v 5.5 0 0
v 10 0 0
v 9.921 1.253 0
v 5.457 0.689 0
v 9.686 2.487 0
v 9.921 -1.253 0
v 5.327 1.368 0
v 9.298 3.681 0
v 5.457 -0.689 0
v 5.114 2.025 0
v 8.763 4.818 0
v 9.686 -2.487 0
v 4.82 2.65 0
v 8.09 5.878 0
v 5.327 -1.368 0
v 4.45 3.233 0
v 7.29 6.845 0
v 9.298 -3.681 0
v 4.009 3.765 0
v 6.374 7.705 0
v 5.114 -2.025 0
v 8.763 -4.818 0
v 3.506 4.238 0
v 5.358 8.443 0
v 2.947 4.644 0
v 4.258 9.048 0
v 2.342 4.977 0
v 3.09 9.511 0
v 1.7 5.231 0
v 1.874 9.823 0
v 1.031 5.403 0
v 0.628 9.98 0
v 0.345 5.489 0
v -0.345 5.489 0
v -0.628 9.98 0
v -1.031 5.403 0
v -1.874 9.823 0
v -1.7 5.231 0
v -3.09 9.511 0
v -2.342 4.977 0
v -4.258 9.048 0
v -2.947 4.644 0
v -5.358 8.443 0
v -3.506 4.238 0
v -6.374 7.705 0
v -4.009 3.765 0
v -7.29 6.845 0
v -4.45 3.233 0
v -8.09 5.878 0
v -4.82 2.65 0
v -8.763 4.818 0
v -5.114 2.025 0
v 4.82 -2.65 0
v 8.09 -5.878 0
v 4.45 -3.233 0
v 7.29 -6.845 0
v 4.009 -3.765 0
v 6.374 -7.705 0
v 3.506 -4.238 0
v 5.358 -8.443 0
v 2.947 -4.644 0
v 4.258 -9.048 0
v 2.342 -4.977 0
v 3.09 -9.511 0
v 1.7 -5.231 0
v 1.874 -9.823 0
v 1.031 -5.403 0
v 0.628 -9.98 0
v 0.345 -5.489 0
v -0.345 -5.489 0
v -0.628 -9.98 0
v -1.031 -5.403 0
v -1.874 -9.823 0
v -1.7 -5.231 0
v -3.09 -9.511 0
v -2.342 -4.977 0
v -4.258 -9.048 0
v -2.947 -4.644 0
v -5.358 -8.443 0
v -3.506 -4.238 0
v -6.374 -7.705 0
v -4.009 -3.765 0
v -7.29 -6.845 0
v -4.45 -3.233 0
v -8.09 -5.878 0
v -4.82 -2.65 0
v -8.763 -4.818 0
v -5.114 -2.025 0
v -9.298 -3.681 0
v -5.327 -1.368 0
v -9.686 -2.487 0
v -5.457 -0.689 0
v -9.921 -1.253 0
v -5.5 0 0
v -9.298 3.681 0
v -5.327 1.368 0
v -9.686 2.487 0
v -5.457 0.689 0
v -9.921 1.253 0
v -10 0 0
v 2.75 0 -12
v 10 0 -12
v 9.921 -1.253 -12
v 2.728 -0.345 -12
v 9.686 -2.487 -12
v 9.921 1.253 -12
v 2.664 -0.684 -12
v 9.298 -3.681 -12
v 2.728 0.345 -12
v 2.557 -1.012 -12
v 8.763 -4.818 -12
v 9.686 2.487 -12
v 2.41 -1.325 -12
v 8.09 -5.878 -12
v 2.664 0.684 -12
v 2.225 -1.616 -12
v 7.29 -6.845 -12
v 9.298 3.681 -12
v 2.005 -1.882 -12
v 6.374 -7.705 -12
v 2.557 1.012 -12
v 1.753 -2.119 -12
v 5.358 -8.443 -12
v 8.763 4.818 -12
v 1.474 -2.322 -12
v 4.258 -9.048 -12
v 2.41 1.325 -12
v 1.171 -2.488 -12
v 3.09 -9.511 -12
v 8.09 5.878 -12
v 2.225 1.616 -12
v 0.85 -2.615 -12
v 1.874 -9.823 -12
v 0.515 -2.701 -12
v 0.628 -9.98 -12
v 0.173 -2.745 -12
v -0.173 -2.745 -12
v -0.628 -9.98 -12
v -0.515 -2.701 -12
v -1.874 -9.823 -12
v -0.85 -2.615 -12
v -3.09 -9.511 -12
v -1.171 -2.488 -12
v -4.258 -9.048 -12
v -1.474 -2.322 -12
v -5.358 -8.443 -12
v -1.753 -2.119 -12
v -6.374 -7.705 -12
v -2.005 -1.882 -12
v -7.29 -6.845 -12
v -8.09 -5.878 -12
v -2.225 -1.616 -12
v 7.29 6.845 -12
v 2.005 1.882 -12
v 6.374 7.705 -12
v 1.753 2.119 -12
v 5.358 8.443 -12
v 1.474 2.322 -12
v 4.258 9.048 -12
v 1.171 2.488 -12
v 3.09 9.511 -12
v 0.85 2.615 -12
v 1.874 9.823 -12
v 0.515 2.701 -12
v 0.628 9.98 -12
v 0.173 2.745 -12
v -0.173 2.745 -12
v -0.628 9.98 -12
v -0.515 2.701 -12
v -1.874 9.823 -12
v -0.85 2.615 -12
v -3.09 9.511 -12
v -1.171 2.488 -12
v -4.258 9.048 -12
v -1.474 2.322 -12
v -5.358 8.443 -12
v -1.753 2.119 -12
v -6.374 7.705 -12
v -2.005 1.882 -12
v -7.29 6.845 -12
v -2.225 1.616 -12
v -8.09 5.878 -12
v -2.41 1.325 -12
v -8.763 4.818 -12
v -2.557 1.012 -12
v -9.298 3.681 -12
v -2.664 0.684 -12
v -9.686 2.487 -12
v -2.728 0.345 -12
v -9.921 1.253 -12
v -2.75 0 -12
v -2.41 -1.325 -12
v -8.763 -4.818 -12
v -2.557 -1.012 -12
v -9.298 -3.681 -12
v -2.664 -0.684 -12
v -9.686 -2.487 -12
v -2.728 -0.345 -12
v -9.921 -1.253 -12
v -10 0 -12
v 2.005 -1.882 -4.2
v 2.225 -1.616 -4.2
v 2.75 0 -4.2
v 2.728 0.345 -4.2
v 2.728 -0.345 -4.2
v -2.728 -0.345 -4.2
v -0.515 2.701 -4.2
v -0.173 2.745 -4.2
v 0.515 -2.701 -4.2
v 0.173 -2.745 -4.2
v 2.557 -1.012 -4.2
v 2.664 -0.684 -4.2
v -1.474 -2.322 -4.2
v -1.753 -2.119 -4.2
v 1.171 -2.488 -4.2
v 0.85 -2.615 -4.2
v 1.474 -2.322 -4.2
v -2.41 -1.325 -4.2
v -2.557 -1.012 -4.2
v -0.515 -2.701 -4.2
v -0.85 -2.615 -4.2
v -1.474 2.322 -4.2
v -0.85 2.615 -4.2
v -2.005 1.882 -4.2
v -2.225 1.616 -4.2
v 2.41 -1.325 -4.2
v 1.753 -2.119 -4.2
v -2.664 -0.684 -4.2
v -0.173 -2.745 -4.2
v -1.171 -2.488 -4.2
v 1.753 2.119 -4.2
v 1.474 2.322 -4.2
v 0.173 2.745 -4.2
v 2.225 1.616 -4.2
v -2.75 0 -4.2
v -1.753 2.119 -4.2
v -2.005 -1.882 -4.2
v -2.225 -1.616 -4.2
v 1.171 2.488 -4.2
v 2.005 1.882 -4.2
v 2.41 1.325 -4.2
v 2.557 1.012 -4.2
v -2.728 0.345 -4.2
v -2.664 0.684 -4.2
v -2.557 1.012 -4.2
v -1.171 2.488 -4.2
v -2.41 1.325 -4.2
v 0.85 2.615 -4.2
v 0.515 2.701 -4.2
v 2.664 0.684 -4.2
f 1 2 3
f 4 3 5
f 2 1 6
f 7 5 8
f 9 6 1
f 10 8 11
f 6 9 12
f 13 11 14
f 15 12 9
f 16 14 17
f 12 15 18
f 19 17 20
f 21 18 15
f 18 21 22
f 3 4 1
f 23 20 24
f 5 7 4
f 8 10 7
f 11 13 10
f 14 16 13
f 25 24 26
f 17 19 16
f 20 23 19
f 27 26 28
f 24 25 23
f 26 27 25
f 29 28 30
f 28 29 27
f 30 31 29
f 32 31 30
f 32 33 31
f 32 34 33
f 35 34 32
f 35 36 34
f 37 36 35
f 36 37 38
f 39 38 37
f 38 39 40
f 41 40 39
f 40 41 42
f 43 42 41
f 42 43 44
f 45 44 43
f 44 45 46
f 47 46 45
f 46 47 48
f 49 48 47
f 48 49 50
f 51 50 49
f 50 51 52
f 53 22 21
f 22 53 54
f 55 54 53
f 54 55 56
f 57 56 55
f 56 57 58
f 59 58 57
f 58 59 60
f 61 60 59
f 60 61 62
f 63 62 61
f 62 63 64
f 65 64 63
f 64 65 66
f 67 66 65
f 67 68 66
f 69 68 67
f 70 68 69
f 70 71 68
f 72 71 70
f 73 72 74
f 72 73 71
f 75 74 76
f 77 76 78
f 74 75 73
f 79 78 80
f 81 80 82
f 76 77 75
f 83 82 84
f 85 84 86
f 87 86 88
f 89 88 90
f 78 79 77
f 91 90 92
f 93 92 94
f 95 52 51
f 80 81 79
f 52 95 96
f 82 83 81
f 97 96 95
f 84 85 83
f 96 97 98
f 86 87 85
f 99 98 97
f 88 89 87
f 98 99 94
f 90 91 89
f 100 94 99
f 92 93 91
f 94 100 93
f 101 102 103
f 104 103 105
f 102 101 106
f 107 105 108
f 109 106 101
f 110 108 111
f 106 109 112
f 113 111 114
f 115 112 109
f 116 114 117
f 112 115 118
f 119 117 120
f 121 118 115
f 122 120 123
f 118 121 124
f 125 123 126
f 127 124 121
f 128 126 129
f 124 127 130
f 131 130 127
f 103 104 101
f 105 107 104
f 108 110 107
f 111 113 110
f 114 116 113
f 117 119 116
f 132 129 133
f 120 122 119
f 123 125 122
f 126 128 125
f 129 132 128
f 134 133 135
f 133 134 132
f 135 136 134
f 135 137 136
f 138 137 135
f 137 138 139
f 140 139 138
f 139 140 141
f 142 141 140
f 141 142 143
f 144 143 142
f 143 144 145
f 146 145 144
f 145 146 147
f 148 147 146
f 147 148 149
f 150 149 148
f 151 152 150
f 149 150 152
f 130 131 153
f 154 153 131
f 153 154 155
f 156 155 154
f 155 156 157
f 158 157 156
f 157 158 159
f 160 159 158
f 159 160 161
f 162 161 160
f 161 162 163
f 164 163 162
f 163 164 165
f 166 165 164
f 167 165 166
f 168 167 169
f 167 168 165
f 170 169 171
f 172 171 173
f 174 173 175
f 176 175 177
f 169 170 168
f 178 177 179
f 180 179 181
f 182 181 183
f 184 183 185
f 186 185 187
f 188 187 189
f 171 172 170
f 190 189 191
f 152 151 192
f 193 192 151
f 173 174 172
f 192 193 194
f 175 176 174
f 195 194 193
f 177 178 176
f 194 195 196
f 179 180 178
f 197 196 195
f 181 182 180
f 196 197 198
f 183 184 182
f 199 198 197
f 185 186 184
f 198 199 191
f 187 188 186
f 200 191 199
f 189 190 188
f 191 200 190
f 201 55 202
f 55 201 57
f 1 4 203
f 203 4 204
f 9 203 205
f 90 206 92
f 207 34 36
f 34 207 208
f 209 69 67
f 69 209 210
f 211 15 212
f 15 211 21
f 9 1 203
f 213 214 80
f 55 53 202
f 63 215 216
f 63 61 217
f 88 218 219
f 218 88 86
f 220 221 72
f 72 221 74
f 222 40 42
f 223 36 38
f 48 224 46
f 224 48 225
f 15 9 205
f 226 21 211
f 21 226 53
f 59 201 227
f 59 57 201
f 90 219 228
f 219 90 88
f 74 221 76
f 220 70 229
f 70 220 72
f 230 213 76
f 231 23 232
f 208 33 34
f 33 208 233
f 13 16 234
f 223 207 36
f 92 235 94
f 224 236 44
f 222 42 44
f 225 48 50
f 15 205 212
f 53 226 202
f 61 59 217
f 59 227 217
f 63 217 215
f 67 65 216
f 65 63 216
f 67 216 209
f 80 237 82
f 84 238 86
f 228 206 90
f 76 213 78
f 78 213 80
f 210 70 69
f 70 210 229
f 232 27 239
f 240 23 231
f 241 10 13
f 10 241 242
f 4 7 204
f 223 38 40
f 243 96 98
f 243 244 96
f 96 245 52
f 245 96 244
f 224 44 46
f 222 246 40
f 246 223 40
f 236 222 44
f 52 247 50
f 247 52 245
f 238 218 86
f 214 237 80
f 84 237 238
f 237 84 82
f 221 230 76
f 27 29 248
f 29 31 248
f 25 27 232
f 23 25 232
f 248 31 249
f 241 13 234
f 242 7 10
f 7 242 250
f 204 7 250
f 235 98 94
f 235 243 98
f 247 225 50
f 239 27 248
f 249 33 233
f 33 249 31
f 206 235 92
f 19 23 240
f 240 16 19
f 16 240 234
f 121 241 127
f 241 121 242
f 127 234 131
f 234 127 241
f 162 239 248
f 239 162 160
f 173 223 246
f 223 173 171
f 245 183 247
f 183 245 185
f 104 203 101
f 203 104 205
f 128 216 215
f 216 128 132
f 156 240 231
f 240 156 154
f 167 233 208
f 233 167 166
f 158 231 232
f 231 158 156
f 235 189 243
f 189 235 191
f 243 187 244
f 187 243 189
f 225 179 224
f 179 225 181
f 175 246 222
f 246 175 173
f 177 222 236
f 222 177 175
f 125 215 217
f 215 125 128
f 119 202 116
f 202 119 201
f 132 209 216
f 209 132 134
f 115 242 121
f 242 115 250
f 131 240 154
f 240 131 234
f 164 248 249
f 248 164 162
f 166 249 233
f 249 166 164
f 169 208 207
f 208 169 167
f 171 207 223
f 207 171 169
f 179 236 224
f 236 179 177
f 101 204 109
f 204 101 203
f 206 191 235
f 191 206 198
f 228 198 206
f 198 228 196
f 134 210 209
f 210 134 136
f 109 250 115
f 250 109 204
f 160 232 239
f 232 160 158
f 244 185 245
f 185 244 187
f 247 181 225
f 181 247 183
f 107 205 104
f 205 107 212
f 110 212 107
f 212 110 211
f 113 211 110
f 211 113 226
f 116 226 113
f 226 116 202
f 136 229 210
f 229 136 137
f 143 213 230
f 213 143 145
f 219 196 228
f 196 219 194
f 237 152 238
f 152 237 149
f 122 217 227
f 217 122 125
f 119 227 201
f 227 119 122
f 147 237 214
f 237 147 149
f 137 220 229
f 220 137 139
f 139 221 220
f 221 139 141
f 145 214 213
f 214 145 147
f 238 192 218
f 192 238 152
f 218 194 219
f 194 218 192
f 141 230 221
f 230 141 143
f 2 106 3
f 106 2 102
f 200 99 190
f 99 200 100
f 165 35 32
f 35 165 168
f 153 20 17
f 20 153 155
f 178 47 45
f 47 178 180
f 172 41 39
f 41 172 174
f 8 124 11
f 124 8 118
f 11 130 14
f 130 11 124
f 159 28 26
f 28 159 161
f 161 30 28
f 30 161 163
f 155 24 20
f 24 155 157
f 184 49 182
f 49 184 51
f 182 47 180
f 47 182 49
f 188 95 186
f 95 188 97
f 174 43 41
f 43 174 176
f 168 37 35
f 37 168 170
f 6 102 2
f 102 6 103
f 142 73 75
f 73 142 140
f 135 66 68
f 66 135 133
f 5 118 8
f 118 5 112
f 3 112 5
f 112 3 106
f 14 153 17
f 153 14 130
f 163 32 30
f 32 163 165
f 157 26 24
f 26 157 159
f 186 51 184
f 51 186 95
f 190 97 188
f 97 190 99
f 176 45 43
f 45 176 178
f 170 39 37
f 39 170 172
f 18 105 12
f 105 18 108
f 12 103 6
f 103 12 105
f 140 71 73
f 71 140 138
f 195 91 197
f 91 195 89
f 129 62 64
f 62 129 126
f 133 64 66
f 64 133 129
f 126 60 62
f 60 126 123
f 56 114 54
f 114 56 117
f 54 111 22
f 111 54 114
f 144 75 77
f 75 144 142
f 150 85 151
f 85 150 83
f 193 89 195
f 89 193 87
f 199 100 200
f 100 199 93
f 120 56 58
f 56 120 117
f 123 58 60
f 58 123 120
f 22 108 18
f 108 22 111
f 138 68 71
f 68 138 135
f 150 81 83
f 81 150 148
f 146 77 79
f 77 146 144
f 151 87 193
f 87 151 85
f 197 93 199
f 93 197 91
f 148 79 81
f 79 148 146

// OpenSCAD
$fn = 50;


difference() {
	union() {
		translate(v = [0, 0, -12.0000000000]) {
			cylinder(h = 12, r = 10.0000000000);
		}
		cylinder(h = 0, r = 20.0000000000);
	}
	union() {
		translate(v = [0, 0, 0]) {
			rotate(a = [0, 0, 0]) {
				difference() {
					union() {
						#translate(v = [0, 0, -12.0000000000]) {
							cylinder(h = 12, r = 2.2500000000);
						}
						#translate(v = [0, 0, -4.2000000000]) {
							cylinder(h = 4.2000000000, r1 = 2.7500000000, r2 = 5.5000000000);
						}
						#translate(v = [0, 0, -12.0000000000]) {
							cylinder(h = 12, r = 2.7500000000);
						}
						#translate(v = [0, 0, -12.0000000000]) {
							cylinder(h = 12, r = 2.2500000000);
						}
					}
					union();
				}
			}
		}
	}
}
